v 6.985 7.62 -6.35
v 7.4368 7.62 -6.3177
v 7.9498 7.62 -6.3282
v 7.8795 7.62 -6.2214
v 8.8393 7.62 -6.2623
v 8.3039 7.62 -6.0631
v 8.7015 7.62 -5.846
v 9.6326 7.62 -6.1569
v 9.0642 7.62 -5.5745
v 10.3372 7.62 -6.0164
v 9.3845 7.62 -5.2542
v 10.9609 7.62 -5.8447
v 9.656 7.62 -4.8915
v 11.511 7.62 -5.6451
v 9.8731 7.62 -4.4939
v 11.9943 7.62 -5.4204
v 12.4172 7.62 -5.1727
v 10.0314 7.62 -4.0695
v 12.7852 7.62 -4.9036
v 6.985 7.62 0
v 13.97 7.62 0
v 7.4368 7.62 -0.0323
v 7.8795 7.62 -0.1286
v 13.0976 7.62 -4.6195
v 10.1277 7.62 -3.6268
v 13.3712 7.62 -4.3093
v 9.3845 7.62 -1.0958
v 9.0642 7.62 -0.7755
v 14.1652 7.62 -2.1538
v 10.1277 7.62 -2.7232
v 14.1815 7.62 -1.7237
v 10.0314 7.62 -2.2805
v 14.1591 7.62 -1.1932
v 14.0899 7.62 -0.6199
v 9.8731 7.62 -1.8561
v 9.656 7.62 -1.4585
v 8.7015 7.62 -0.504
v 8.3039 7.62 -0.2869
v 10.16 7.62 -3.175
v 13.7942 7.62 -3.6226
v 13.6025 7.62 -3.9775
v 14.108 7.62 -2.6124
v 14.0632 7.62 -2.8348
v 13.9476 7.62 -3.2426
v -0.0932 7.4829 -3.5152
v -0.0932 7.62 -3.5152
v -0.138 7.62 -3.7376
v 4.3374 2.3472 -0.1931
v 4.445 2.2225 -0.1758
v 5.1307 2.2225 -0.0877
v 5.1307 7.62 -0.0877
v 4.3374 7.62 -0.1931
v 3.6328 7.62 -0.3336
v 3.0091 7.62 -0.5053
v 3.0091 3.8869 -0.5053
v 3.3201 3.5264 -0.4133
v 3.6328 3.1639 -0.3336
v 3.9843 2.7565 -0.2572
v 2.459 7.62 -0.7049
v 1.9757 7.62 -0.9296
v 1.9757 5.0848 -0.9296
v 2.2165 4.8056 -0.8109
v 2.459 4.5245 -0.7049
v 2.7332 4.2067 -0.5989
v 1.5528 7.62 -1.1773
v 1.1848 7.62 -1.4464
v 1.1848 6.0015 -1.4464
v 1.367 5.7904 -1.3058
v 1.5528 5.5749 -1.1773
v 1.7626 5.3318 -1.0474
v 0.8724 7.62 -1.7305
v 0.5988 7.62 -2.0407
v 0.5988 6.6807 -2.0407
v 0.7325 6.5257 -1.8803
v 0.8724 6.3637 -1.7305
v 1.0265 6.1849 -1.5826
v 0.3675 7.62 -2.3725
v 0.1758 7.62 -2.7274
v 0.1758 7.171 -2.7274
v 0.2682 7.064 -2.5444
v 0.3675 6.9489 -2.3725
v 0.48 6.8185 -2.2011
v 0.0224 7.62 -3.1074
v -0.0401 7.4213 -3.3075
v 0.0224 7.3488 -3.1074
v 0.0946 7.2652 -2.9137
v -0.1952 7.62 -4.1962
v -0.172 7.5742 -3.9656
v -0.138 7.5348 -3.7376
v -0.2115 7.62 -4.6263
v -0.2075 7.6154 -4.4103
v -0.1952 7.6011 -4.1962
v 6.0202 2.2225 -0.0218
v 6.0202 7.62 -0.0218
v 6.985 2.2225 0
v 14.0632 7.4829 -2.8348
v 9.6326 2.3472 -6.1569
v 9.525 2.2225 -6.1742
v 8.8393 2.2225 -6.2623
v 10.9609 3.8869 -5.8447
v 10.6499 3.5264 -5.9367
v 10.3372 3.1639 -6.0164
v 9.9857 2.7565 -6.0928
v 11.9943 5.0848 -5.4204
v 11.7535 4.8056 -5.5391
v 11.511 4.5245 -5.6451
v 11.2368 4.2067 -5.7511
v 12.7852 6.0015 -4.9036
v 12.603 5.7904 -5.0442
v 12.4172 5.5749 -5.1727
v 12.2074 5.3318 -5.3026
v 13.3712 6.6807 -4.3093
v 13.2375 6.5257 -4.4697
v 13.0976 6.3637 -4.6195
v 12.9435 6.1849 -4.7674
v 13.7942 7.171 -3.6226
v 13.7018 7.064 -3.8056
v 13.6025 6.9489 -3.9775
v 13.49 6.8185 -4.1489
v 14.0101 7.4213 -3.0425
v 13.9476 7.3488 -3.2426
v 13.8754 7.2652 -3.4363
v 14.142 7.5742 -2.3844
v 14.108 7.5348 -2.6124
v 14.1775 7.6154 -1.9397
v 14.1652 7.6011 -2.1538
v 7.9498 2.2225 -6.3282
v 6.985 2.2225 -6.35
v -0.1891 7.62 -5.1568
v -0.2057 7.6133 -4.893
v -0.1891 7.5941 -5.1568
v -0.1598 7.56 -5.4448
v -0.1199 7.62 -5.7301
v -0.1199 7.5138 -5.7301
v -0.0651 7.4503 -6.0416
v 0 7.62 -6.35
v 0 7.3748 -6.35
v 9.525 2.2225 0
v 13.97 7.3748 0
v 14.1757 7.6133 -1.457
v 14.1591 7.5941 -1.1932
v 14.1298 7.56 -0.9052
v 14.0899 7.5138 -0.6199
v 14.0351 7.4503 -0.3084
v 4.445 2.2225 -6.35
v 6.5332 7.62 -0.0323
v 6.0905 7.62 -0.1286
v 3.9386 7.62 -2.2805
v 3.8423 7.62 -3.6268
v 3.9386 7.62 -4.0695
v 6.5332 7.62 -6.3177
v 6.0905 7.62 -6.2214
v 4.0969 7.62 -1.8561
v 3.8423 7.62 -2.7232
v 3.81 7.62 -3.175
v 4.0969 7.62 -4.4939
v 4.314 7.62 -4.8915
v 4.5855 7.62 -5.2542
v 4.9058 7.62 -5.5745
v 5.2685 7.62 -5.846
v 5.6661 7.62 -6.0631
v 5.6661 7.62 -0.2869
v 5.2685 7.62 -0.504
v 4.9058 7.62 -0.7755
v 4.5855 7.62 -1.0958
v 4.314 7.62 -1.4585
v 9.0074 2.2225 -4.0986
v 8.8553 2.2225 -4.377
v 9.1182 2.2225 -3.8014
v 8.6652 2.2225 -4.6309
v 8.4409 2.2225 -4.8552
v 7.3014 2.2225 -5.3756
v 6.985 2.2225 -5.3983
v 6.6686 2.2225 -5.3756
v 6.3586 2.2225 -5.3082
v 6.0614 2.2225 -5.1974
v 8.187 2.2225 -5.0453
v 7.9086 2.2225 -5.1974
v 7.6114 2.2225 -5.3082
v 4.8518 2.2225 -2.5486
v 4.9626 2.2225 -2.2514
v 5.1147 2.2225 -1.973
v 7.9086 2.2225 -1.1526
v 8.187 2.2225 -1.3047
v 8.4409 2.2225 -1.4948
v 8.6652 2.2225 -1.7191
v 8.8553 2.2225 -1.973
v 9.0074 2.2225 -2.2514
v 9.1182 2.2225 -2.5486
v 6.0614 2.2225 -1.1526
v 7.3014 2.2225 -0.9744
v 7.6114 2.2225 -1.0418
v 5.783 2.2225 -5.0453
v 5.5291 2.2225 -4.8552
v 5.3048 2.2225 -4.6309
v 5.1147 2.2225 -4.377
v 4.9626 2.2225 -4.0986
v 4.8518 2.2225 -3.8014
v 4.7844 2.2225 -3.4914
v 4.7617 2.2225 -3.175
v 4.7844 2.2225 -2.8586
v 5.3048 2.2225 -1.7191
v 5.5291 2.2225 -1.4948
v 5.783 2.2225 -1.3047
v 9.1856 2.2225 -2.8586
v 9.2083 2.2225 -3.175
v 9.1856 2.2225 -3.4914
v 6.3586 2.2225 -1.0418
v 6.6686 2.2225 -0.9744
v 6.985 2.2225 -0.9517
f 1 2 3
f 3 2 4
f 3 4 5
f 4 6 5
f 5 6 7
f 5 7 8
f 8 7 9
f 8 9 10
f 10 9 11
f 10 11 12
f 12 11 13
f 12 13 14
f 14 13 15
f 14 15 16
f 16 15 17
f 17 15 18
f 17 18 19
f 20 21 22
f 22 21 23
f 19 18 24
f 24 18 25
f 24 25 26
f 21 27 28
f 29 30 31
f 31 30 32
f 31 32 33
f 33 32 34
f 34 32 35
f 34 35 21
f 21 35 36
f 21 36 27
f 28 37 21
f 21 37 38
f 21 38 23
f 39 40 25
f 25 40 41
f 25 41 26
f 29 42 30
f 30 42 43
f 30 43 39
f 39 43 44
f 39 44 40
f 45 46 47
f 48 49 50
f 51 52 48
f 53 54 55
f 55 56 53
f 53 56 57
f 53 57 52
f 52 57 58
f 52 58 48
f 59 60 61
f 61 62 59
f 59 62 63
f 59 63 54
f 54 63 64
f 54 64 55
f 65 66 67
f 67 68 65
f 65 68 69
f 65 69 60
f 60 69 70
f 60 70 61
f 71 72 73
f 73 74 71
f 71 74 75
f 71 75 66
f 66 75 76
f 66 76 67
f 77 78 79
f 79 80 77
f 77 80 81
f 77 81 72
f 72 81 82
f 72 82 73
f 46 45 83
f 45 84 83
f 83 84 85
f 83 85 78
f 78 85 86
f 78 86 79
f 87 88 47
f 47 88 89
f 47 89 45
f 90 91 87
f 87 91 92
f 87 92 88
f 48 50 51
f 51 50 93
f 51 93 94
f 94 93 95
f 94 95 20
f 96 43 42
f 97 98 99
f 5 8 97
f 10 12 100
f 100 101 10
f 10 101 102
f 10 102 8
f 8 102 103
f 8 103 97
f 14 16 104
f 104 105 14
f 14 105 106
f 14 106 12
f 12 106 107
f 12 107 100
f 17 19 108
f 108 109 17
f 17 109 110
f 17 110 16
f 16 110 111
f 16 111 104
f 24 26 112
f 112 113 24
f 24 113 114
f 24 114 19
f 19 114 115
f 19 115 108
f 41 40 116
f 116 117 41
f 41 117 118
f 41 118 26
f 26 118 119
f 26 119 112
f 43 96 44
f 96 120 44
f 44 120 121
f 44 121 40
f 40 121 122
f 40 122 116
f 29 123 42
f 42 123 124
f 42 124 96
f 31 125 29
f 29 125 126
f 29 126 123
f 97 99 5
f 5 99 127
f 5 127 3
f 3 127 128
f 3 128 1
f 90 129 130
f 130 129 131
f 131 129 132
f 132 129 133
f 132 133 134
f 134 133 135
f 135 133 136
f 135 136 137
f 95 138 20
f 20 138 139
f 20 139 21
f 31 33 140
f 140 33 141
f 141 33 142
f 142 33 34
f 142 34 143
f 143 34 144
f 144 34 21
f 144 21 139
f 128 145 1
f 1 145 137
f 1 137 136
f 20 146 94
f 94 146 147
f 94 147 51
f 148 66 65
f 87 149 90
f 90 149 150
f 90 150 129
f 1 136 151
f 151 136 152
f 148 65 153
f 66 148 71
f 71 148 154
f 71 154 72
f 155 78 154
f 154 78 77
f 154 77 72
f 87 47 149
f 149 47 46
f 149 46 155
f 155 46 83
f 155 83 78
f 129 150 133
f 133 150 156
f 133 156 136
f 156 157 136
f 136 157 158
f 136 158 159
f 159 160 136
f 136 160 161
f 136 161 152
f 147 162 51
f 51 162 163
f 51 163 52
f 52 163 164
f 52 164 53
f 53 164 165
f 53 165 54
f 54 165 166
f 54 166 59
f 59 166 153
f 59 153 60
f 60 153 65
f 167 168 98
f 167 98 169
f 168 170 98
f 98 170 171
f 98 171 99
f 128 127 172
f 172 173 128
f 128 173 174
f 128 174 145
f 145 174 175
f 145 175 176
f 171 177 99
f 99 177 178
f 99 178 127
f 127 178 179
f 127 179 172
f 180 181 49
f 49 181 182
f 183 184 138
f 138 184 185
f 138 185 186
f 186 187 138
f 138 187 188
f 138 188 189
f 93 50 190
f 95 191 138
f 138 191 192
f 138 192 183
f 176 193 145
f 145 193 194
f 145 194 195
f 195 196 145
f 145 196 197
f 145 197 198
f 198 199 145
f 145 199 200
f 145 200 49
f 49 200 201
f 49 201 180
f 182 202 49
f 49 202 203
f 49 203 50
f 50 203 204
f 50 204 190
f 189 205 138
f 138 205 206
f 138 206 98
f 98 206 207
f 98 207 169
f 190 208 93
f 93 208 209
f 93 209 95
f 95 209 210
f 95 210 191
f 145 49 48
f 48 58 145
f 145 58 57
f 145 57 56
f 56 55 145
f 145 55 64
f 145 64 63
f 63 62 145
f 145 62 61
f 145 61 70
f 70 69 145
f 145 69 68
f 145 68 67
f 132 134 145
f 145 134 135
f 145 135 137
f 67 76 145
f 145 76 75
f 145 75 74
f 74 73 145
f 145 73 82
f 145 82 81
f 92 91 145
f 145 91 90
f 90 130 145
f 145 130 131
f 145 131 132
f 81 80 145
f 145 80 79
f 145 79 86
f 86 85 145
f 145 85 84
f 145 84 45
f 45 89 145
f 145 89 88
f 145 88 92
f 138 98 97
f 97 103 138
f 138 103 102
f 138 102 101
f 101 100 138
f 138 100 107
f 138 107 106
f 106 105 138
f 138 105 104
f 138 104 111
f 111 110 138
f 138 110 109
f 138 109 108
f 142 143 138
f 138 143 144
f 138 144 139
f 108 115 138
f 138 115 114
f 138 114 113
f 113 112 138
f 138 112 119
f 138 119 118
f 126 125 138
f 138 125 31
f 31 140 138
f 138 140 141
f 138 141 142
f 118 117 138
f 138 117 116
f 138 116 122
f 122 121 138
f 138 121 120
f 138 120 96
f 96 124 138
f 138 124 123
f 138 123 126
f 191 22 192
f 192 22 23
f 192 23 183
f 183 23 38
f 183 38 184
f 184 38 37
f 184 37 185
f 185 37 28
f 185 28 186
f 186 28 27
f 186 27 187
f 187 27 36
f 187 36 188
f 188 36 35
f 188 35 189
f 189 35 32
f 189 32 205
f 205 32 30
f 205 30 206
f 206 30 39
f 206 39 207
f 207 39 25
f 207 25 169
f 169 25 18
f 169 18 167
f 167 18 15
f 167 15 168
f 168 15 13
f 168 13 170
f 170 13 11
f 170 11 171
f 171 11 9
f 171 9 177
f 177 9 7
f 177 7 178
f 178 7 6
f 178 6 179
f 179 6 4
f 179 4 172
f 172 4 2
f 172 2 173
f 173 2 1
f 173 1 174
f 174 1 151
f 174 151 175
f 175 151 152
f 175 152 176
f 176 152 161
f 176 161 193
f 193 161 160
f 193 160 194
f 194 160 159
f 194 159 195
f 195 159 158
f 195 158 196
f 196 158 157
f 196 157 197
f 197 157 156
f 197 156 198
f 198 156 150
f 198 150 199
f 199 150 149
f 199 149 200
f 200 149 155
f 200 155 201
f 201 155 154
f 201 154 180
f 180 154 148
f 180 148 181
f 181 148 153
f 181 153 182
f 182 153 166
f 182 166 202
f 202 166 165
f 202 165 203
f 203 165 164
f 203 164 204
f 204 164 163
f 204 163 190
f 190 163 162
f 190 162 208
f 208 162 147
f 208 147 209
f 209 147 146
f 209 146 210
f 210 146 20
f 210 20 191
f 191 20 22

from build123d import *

# Parameters (mm, degrees)
BOSS_EXTRUDE2_DEPTH = 7.62
SKETCH16_W          = 15.32256728
SKETCH16_H          = 7.308103898
CUT_EXTRUDE1_DEPTH  = 2.2225
CUT_EXTRUDE2_REACH  = 19.306
SKETCH18_R          = 3.175
CUT_EXTRUDE3_DEPTH  = 5.3975
CUT_EXTRUDE3_DRAFT  = -10


with BuildPart() as part:
    # Sketch1 → Boss-Extrude2 (new body)
    with BuildSketch(Plane(origin=(0, 0, 0), x_dir=(1, 0, 0), z_dir=(0, 1, 0))):
        with BuildLine():
            Line((6.985, 0), (13.97, 0))
            add(Edge.make_bspline(
                [(6.985, 6.35), (15.415206783, 6.354454923), (13.97, 0)],
                knots=[0, 0, 0, 1, 1, 1], degree=2))
            Line((6.985, 6.35), (0, 6.35))
            add(Edge.make_bspline(
                [(6.985, 0), (-1.445206783, -0.004454923), (0, 6.35)],
                knots=[0, 0, 0, 1, 1, 1], degree=2))
        make_face()
    extrude(amount=BOSS_EXTRUDE2_DEPTH)

    # Sketch16 → Cut-Extrude1 (cut)
    with BuildSketch(Plane.XZ):
        with Locations((6.964918342, -3.123671001)):
            Rectangle(SKETCH16_W, SKETCH16_H)
    extrude(amount=-CUT_EXTRUDE1_DEPTH, mode=Mode.SUBTRACT)

    # Cut-Extrude2: up to this face of the body (flat: up to its plane)
    cut_extrude2_end = Plane(part.part.faces().sort_by_distance((3.4925, 4.92125, -6.35))[0])
    # Sketch17 → Cut-Extrude2 (cut, up to the picked face)
    with BuildSketch(Plane.XY, mode=Mode.PRIVATE) as cut_extrude2_sk1:
        Polygon((9.525, 2.2225), (14.181497233, 7.62), (14.181497233, 2.2225), align=None)
    cut_extrude2_tool1 = split(extrude(cut_extrude2_sk1.sketch, amount=-CUT_EXTRUDE2_REACH, mode=Mode.PRIVATE), bisect_by=cut_extrude2_end, keep=Keep.BOTH, mode=Mode.PRIVATE)
    # Sketch17 → Cut-Extrude2 (cut, up to the picked face)
    with BuildSketch(Plane.XY, mode=Mode.PRIVATE) as cut_extrude2_sk2:
        Polygon((-0.211497233, 2.2225), (4.445, 2.2225), (-0.211497233, 7.62), align=None)
    cut_extrude2_tool2 = split(extrude(cut_extrude2_sk2.sketch, amount=-CUT_EXTRUDE2_REACH, mode=Mode.PRIVATE), bisect_by=cut_extrude2_end, keep=Keep.BOTH, mode=Mode.PRIVATE)
    add(cut_extrude2_tool1.solids().sort_by(Axis((12.629331, 4.021667, 0), (0, 0, -1)))[0], mode=Mode.SUBTRACT)
    add(cut_extrude2_tool2.solids().sort_by(Axis((1.340669, 4.021667, 0), (0, 0, -1)))[0], mode=Mode.SUBTRACT)


with BuildPart() as cut_extrude3_tool:
    # Sketch18 → Cut-Extrude3 (with draft: the straight prism first)
    with BuildSketch(Plane(origin=(0, 7.62, 0), x_dir=(1, 0, 0), z_dir=(0, 1, 0))):
        with Locations((6.985, 3.175)):
            Circle(SKETCH18_R)
    extrude(amount=-CUT_EXTRUDE3_DEPTH)
    # Cut-Extrude3: the draft: its side faces are tilted about the plane it starts from
    cut_extrude3_sides = [cut_extrude3_tool.faces().sort_by_distance(p)[0] for p in [
        (3.81, 4.92125, -3.175),
    ]]
    draft(cut_extrude3_sides, Plane(origin=(0, 7.62, 0), x_dir=(1, 0, 0), z_dir=(0, 1, 0)), CUT_EXTRUDE3_DRAFT)


with BuildPart() as part_1:
    add(part.part)

    # Cut-Extrude3: cut by cut_extrude3_tool
    add(cut_extrude3_tool.part, mode=Mode.SUBTRACT)


solid = part_1.part
